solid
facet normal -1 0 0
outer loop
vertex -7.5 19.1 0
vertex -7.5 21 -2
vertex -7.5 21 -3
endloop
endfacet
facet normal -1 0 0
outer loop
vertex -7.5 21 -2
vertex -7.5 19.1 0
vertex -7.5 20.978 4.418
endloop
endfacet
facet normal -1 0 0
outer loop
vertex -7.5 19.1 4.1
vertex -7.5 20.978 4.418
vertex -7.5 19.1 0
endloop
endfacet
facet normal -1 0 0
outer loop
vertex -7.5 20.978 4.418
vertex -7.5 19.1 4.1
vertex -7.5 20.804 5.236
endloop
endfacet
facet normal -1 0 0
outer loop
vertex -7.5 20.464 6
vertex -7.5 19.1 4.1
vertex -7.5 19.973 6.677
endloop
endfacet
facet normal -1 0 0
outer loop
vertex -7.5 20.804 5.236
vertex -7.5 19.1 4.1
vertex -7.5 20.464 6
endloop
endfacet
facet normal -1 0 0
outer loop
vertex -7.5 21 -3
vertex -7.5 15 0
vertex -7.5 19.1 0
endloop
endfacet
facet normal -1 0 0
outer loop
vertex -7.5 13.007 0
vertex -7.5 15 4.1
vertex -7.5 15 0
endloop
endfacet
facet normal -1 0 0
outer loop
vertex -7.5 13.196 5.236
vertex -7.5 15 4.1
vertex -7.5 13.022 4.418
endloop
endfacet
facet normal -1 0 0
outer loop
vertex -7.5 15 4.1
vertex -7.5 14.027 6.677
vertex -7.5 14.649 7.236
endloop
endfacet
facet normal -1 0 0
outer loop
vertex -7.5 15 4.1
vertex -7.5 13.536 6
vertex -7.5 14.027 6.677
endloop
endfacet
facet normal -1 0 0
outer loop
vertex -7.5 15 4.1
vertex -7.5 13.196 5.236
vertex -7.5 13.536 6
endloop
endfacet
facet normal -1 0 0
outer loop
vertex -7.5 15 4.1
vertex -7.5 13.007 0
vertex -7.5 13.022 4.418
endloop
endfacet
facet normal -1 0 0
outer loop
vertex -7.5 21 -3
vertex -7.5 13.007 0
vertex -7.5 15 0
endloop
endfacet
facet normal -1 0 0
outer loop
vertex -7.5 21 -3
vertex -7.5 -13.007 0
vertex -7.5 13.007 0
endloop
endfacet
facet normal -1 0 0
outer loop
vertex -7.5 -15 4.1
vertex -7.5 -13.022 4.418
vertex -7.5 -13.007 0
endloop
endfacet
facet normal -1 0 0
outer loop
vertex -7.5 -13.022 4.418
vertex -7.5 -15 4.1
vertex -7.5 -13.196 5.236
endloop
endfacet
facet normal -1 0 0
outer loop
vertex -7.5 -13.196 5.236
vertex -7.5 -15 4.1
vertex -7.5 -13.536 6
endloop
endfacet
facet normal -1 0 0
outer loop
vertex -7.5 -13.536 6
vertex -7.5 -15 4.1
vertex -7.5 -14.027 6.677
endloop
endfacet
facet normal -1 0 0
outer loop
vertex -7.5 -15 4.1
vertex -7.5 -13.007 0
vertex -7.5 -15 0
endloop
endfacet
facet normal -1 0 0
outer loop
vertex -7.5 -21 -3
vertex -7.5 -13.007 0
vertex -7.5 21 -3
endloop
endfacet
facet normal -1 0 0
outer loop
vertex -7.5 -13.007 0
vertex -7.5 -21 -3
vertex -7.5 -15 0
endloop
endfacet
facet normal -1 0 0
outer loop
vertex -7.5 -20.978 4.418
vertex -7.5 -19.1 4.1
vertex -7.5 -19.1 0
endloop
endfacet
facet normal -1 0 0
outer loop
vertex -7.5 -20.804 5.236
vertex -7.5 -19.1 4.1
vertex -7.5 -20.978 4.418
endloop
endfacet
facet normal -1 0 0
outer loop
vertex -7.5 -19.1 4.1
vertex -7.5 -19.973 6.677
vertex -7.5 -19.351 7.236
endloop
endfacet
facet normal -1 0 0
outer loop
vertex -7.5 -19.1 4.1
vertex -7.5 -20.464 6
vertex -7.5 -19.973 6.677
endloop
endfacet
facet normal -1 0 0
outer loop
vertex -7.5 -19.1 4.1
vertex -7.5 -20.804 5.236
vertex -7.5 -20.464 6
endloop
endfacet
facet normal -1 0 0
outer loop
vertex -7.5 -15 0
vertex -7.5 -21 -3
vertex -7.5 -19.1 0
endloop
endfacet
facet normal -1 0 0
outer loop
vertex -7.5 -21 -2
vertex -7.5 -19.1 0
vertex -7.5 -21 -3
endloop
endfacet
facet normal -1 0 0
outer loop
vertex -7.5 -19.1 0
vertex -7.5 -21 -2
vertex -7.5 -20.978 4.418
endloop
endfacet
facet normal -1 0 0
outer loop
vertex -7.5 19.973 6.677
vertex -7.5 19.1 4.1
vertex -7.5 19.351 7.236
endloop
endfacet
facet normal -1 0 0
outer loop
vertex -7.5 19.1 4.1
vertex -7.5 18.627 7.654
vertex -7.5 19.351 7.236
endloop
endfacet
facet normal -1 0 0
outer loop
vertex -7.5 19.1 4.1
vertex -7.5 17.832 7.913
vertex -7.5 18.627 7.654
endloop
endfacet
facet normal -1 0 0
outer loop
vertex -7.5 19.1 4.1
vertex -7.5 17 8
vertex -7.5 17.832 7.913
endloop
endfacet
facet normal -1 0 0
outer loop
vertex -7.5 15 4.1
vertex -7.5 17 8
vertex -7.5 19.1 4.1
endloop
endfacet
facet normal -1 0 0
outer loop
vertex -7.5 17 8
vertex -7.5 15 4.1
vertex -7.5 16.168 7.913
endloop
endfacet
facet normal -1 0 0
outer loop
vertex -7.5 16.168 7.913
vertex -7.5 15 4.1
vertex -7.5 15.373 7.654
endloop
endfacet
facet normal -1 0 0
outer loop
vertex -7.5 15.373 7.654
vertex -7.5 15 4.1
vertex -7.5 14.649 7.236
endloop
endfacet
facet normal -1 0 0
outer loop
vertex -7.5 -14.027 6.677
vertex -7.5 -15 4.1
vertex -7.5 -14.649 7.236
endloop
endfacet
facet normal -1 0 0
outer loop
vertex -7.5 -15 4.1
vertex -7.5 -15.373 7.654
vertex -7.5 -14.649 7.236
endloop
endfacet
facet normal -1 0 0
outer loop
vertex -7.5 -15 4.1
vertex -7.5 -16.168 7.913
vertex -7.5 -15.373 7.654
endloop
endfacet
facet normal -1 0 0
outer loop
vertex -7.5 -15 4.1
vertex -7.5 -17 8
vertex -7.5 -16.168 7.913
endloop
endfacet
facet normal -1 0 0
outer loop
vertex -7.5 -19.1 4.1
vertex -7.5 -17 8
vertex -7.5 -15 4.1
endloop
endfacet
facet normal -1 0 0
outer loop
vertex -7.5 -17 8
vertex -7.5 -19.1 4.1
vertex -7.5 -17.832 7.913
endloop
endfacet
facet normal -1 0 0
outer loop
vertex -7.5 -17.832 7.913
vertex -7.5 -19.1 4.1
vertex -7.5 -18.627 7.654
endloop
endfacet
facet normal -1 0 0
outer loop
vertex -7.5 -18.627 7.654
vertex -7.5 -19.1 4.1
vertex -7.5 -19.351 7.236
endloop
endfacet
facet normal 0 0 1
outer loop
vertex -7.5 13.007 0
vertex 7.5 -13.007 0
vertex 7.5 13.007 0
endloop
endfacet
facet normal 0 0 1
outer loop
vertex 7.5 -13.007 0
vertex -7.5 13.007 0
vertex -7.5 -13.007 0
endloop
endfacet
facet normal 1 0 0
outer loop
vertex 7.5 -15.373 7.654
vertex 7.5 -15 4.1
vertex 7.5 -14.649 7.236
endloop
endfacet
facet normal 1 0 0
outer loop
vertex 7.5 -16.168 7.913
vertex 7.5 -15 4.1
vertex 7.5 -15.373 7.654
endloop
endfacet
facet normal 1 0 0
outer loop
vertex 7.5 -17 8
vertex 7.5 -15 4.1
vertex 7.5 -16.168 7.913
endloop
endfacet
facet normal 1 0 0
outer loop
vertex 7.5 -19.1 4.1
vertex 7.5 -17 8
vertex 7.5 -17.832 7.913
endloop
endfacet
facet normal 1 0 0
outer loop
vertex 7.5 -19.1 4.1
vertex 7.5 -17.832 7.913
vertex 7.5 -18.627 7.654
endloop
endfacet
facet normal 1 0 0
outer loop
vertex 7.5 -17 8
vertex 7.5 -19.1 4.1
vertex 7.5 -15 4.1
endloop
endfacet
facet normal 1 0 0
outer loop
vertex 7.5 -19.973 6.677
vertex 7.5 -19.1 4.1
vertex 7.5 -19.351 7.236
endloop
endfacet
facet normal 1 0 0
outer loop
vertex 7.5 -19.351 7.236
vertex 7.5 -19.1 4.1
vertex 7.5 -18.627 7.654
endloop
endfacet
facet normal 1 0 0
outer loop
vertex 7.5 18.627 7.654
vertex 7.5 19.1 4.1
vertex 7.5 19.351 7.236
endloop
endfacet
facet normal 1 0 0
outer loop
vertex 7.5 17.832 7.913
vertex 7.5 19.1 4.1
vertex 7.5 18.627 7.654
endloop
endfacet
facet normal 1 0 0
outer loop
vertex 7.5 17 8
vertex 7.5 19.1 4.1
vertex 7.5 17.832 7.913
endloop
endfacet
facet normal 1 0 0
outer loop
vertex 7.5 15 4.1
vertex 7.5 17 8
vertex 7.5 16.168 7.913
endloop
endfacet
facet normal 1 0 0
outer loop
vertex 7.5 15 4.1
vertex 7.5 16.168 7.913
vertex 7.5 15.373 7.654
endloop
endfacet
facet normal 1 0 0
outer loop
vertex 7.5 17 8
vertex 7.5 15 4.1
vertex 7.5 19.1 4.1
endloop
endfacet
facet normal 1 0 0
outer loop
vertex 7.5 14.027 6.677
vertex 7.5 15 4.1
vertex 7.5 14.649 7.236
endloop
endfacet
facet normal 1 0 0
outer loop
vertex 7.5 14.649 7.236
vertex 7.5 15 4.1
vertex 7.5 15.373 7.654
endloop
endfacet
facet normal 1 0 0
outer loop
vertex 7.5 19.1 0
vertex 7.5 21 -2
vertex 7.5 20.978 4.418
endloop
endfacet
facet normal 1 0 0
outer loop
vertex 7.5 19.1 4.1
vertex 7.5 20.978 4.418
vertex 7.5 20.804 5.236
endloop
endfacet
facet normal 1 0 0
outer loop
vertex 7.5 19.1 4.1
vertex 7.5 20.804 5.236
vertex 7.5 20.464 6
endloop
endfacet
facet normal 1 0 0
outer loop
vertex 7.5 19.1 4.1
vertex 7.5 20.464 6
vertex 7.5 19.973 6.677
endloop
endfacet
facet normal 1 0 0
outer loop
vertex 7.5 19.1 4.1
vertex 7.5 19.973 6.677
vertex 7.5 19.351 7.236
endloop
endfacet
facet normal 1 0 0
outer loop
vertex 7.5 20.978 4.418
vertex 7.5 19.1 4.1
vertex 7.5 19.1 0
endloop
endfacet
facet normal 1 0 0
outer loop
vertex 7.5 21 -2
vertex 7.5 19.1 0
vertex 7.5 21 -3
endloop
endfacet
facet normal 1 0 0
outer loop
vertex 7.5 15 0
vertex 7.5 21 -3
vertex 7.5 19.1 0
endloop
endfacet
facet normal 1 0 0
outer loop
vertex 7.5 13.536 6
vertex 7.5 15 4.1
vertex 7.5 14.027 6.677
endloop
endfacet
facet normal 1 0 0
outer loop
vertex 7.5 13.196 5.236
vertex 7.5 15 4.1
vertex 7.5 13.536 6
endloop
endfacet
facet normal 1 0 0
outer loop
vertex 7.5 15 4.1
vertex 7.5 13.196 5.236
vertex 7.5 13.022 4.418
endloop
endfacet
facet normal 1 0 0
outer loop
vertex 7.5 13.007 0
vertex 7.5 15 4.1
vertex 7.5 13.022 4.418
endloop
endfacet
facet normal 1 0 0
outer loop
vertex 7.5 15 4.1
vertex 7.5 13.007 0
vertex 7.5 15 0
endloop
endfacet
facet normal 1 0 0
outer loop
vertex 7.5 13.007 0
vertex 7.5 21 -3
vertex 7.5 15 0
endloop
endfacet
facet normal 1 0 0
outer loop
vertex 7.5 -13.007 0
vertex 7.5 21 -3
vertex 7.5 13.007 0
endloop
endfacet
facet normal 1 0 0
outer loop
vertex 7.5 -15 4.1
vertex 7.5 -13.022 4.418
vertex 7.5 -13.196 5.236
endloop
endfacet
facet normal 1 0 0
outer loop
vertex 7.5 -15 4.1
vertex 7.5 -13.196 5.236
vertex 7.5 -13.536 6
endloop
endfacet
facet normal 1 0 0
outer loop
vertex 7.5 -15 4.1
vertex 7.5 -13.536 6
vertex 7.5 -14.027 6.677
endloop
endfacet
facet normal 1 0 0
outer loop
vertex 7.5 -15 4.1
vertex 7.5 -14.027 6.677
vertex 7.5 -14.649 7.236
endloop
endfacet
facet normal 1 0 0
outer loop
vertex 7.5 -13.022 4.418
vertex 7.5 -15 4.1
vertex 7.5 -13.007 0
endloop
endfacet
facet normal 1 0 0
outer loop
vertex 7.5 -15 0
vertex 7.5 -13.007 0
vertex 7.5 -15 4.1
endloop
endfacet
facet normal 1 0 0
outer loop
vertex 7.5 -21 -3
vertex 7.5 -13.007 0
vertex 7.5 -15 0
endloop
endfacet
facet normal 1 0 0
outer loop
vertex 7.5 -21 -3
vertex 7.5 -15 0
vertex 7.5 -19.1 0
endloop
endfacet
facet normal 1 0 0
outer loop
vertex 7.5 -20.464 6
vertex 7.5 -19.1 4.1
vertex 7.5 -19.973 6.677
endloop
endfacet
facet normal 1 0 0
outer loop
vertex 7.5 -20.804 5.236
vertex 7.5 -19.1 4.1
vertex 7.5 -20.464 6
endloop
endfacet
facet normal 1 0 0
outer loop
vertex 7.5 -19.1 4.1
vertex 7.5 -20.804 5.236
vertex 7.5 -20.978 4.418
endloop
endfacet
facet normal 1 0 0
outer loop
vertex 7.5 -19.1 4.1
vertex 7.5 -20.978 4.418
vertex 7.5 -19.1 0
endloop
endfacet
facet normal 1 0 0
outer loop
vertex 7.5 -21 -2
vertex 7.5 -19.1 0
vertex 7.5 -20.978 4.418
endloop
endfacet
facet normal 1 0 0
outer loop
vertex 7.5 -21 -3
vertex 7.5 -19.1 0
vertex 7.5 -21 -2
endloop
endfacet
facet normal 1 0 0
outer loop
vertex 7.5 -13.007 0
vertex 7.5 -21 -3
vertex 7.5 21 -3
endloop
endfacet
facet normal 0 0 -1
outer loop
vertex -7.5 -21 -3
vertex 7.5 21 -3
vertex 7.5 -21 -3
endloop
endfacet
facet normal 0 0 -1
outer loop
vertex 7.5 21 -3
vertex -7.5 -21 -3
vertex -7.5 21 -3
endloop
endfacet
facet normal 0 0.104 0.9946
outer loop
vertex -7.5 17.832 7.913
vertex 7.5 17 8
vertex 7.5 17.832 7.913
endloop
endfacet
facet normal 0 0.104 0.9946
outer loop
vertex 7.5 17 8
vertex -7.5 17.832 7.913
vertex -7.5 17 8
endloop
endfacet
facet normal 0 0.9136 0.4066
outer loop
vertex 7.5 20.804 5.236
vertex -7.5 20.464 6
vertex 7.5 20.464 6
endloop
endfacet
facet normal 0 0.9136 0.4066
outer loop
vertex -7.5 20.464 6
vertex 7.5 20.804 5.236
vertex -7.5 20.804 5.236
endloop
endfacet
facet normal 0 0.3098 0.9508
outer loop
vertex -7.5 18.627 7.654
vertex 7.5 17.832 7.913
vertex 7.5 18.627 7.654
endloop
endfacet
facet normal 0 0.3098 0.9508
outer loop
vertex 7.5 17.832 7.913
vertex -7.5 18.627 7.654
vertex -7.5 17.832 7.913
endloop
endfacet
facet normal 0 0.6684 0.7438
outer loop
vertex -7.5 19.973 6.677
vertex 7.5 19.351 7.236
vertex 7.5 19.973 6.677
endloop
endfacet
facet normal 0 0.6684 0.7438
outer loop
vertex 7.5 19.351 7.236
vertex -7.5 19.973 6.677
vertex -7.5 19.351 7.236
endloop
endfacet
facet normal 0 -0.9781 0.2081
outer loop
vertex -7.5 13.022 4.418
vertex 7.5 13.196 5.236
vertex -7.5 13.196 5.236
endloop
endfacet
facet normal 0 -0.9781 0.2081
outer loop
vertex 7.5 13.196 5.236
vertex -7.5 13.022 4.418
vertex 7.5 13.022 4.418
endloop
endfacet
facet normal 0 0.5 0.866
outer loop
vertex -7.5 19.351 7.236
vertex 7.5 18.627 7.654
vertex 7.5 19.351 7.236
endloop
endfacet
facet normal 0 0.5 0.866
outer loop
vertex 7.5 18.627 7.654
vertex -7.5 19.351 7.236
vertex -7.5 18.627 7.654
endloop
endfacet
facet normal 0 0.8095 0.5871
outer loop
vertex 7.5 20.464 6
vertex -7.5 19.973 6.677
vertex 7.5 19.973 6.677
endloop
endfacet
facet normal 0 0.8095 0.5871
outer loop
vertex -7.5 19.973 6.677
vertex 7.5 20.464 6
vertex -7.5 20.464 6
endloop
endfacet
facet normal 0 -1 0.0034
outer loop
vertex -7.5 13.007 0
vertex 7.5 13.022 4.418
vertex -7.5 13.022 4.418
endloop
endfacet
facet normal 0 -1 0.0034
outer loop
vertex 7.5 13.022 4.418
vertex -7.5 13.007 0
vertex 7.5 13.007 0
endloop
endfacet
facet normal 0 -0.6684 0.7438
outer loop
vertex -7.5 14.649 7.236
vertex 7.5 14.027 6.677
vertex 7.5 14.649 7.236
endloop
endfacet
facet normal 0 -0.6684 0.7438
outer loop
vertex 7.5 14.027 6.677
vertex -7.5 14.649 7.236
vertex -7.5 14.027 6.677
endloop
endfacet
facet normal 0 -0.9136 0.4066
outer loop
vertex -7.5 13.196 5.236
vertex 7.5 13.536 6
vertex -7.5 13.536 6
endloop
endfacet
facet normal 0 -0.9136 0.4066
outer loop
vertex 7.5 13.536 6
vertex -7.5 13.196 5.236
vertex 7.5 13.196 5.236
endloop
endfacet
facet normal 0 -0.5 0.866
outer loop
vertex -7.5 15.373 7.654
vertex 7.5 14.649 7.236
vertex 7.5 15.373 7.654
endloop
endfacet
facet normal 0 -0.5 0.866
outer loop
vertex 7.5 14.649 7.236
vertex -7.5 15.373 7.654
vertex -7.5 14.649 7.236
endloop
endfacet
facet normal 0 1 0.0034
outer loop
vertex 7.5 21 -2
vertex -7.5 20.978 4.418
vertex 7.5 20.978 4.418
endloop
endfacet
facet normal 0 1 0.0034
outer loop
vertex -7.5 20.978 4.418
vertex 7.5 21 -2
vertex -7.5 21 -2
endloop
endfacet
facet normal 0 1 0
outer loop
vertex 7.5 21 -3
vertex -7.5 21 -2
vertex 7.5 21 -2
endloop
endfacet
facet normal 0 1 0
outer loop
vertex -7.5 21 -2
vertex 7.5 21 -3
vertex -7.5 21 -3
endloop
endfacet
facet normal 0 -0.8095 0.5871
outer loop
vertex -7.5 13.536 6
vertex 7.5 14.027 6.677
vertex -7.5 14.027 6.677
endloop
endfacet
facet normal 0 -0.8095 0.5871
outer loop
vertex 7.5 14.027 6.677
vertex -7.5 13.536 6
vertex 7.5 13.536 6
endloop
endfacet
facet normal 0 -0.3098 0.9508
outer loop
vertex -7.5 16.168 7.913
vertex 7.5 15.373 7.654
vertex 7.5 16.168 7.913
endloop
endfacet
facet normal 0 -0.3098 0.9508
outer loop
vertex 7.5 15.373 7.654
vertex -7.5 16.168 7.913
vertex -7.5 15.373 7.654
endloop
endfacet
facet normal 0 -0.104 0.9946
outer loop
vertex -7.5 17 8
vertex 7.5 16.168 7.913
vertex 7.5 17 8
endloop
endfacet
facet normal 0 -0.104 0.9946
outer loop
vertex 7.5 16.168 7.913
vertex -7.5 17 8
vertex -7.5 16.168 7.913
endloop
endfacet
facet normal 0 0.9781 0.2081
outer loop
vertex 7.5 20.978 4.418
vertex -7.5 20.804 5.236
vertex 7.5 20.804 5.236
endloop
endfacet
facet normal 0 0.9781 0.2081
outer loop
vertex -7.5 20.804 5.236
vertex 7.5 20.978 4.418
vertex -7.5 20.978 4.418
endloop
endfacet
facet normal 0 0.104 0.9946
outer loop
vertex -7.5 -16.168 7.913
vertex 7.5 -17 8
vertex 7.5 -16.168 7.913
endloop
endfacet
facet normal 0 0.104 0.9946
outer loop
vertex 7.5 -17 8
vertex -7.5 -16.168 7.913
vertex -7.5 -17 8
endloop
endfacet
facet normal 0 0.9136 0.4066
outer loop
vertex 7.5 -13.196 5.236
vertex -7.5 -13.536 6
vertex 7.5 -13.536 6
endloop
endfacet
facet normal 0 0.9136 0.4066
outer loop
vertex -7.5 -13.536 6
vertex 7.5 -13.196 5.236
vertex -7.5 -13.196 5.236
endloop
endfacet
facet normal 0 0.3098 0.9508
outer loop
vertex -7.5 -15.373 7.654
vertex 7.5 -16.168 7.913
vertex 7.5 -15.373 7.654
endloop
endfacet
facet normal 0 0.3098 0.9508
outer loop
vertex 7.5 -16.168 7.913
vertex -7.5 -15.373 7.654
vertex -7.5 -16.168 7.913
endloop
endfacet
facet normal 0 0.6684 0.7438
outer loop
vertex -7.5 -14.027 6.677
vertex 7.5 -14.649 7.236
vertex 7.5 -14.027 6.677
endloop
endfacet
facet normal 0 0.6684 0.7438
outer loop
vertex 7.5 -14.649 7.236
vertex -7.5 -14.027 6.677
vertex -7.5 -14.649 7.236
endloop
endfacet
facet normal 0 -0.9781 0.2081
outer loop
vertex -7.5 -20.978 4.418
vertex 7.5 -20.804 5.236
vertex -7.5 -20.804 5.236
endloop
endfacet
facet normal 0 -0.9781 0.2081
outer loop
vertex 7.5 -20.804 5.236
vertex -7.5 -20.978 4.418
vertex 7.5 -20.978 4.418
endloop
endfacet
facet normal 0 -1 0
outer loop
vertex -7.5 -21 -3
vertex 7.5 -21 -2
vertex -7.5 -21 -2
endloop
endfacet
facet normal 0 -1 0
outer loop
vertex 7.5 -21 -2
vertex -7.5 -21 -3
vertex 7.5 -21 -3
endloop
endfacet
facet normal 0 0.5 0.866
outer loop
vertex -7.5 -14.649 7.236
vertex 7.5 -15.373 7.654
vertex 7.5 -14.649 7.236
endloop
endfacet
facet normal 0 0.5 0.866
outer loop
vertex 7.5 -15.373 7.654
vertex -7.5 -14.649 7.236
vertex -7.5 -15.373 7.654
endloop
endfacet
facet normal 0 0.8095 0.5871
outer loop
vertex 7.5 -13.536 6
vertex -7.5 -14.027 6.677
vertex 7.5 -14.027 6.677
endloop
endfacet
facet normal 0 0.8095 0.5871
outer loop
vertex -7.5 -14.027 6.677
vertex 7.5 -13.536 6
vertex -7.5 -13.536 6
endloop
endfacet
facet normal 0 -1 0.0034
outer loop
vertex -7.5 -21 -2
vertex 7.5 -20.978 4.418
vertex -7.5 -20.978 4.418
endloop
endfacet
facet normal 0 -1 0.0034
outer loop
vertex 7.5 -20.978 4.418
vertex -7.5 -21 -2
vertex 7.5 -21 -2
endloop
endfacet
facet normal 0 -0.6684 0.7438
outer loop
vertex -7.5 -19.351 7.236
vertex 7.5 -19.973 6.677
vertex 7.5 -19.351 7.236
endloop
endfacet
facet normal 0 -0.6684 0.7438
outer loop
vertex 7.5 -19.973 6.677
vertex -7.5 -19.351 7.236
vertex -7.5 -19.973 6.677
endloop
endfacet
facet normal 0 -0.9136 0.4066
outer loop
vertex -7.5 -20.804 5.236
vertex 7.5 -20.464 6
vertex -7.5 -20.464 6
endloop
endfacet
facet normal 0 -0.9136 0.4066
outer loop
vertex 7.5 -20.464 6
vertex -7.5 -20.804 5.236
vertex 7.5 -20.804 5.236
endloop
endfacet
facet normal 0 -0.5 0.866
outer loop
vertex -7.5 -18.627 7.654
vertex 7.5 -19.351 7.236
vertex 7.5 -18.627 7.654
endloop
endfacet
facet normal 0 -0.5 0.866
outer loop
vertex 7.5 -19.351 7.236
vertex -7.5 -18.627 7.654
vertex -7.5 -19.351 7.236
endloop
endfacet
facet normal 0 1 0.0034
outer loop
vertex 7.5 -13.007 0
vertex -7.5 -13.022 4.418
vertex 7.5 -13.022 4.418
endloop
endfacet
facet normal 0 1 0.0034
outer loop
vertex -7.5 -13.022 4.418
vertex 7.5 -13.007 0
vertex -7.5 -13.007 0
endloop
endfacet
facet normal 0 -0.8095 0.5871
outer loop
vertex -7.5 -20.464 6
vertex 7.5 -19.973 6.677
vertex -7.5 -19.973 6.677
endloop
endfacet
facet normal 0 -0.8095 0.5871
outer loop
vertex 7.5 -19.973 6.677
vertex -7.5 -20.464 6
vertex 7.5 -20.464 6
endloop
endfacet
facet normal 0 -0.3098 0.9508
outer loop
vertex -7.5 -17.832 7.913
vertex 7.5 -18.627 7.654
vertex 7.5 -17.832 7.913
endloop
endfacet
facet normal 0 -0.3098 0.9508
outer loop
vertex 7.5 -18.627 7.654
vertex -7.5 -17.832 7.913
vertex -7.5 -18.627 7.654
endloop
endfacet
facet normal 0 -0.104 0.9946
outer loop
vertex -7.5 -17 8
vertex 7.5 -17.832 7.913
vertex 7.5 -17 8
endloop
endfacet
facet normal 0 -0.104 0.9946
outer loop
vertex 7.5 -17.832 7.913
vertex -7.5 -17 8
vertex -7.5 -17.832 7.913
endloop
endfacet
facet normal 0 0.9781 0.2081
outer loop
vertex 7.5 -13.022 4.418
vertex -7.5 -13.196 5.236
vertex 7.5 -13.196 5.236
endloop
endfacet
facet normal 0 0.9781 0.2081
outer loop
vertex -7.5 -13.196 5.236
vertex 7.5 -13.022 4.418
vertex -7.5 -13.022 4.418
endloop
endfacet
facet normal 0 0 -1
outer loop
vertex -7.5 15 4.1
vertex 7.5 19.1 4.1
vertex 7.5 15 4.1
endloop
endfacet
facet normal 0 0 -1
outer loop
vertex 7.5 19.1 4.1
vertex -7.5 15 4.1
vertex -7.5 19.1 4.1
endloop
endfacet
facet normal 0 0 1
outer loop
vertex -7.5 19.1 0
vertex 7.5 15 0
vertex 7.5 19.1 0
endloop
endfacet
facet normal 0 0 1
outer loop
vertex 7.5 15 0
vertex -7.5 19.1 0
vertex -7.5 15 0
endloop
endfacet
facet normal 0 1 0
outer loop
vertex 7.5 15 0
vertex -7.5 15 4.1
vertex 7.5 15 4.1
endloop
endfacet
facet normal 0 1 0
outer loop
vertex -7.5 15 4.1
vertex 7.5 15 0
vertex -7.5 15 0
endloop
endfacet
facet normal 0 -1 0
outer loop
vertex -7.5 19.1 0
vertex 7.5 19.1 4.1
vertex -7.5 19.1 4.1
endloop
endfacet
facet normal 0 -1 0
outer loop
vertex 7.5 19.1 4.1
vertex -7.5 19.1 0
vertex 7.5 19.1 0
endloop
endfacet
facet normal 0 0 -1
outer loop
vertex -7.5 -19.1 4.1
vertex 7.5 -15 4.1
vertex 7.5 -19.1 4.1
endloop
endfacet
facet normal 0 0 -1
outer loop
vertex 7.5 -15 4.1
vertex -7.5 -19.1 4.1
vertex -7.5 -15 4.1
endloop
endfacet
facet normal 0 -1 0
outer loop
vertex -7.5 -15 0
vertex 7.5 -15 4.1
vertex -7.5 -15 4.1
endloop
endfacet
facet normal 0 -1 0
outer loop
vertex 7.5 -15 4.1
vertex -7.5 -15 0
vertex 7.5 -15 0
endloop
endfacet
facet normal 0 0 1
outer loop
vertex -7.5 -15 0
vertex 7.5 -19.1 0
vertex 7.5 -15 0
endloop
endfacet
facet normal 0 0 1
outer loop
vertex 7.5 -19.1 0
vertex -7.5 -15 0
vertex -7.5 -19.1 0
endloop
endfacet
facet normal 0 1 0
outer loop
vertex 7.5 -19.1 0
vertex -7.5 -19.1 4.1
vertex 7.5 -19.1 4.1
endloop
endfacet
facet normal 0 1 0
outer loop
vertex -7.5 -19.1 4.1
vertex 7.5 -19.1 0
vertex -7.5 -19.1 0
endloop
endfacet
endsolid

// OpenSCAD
t = 5;

rx = 100;
rdy = 4.1;
roy = 30;
royl = 50;





module rails(oz=2) {
    
  translate([-rx/2,roy/2,oz]) cube([rx,rdy,rdy]);
  mirror([0,1,0]){
    translate([-rx/2,roy/2,oz]) cube([rx,rdy,rdy]);
  }
    
}

module railsLow(oz=2) {
    
  translate([-rx/2,royl/2,oz]) cube([rx,rdy,rdy]);
  mirror([0,1,0]){
    translate([-rx/2,royl/2,oz]) cube([rx,rdy,rdy]);
  }
    
}


difference(){
union(){
  translate([-15/2,-40/2,-3])cube([15,40,3]);
    
  hull(){
    translate([-15/2,27-10,4])rotate([0,90,0])cylinder(r=4,h=15,$fn=30);
    translate([-15/2,27-8/2-10,-3])cube([15,8,1]);
  }
  hull(){
    translate([-15/2,-27+10,4])rotate([0,90,0])cylinder(r=4,h=15,$fn=30);
    translate([-15/2,-27-8/2+10,-3])cube([15,8,1]);
  }
  
}




rails(oz=0);

}
